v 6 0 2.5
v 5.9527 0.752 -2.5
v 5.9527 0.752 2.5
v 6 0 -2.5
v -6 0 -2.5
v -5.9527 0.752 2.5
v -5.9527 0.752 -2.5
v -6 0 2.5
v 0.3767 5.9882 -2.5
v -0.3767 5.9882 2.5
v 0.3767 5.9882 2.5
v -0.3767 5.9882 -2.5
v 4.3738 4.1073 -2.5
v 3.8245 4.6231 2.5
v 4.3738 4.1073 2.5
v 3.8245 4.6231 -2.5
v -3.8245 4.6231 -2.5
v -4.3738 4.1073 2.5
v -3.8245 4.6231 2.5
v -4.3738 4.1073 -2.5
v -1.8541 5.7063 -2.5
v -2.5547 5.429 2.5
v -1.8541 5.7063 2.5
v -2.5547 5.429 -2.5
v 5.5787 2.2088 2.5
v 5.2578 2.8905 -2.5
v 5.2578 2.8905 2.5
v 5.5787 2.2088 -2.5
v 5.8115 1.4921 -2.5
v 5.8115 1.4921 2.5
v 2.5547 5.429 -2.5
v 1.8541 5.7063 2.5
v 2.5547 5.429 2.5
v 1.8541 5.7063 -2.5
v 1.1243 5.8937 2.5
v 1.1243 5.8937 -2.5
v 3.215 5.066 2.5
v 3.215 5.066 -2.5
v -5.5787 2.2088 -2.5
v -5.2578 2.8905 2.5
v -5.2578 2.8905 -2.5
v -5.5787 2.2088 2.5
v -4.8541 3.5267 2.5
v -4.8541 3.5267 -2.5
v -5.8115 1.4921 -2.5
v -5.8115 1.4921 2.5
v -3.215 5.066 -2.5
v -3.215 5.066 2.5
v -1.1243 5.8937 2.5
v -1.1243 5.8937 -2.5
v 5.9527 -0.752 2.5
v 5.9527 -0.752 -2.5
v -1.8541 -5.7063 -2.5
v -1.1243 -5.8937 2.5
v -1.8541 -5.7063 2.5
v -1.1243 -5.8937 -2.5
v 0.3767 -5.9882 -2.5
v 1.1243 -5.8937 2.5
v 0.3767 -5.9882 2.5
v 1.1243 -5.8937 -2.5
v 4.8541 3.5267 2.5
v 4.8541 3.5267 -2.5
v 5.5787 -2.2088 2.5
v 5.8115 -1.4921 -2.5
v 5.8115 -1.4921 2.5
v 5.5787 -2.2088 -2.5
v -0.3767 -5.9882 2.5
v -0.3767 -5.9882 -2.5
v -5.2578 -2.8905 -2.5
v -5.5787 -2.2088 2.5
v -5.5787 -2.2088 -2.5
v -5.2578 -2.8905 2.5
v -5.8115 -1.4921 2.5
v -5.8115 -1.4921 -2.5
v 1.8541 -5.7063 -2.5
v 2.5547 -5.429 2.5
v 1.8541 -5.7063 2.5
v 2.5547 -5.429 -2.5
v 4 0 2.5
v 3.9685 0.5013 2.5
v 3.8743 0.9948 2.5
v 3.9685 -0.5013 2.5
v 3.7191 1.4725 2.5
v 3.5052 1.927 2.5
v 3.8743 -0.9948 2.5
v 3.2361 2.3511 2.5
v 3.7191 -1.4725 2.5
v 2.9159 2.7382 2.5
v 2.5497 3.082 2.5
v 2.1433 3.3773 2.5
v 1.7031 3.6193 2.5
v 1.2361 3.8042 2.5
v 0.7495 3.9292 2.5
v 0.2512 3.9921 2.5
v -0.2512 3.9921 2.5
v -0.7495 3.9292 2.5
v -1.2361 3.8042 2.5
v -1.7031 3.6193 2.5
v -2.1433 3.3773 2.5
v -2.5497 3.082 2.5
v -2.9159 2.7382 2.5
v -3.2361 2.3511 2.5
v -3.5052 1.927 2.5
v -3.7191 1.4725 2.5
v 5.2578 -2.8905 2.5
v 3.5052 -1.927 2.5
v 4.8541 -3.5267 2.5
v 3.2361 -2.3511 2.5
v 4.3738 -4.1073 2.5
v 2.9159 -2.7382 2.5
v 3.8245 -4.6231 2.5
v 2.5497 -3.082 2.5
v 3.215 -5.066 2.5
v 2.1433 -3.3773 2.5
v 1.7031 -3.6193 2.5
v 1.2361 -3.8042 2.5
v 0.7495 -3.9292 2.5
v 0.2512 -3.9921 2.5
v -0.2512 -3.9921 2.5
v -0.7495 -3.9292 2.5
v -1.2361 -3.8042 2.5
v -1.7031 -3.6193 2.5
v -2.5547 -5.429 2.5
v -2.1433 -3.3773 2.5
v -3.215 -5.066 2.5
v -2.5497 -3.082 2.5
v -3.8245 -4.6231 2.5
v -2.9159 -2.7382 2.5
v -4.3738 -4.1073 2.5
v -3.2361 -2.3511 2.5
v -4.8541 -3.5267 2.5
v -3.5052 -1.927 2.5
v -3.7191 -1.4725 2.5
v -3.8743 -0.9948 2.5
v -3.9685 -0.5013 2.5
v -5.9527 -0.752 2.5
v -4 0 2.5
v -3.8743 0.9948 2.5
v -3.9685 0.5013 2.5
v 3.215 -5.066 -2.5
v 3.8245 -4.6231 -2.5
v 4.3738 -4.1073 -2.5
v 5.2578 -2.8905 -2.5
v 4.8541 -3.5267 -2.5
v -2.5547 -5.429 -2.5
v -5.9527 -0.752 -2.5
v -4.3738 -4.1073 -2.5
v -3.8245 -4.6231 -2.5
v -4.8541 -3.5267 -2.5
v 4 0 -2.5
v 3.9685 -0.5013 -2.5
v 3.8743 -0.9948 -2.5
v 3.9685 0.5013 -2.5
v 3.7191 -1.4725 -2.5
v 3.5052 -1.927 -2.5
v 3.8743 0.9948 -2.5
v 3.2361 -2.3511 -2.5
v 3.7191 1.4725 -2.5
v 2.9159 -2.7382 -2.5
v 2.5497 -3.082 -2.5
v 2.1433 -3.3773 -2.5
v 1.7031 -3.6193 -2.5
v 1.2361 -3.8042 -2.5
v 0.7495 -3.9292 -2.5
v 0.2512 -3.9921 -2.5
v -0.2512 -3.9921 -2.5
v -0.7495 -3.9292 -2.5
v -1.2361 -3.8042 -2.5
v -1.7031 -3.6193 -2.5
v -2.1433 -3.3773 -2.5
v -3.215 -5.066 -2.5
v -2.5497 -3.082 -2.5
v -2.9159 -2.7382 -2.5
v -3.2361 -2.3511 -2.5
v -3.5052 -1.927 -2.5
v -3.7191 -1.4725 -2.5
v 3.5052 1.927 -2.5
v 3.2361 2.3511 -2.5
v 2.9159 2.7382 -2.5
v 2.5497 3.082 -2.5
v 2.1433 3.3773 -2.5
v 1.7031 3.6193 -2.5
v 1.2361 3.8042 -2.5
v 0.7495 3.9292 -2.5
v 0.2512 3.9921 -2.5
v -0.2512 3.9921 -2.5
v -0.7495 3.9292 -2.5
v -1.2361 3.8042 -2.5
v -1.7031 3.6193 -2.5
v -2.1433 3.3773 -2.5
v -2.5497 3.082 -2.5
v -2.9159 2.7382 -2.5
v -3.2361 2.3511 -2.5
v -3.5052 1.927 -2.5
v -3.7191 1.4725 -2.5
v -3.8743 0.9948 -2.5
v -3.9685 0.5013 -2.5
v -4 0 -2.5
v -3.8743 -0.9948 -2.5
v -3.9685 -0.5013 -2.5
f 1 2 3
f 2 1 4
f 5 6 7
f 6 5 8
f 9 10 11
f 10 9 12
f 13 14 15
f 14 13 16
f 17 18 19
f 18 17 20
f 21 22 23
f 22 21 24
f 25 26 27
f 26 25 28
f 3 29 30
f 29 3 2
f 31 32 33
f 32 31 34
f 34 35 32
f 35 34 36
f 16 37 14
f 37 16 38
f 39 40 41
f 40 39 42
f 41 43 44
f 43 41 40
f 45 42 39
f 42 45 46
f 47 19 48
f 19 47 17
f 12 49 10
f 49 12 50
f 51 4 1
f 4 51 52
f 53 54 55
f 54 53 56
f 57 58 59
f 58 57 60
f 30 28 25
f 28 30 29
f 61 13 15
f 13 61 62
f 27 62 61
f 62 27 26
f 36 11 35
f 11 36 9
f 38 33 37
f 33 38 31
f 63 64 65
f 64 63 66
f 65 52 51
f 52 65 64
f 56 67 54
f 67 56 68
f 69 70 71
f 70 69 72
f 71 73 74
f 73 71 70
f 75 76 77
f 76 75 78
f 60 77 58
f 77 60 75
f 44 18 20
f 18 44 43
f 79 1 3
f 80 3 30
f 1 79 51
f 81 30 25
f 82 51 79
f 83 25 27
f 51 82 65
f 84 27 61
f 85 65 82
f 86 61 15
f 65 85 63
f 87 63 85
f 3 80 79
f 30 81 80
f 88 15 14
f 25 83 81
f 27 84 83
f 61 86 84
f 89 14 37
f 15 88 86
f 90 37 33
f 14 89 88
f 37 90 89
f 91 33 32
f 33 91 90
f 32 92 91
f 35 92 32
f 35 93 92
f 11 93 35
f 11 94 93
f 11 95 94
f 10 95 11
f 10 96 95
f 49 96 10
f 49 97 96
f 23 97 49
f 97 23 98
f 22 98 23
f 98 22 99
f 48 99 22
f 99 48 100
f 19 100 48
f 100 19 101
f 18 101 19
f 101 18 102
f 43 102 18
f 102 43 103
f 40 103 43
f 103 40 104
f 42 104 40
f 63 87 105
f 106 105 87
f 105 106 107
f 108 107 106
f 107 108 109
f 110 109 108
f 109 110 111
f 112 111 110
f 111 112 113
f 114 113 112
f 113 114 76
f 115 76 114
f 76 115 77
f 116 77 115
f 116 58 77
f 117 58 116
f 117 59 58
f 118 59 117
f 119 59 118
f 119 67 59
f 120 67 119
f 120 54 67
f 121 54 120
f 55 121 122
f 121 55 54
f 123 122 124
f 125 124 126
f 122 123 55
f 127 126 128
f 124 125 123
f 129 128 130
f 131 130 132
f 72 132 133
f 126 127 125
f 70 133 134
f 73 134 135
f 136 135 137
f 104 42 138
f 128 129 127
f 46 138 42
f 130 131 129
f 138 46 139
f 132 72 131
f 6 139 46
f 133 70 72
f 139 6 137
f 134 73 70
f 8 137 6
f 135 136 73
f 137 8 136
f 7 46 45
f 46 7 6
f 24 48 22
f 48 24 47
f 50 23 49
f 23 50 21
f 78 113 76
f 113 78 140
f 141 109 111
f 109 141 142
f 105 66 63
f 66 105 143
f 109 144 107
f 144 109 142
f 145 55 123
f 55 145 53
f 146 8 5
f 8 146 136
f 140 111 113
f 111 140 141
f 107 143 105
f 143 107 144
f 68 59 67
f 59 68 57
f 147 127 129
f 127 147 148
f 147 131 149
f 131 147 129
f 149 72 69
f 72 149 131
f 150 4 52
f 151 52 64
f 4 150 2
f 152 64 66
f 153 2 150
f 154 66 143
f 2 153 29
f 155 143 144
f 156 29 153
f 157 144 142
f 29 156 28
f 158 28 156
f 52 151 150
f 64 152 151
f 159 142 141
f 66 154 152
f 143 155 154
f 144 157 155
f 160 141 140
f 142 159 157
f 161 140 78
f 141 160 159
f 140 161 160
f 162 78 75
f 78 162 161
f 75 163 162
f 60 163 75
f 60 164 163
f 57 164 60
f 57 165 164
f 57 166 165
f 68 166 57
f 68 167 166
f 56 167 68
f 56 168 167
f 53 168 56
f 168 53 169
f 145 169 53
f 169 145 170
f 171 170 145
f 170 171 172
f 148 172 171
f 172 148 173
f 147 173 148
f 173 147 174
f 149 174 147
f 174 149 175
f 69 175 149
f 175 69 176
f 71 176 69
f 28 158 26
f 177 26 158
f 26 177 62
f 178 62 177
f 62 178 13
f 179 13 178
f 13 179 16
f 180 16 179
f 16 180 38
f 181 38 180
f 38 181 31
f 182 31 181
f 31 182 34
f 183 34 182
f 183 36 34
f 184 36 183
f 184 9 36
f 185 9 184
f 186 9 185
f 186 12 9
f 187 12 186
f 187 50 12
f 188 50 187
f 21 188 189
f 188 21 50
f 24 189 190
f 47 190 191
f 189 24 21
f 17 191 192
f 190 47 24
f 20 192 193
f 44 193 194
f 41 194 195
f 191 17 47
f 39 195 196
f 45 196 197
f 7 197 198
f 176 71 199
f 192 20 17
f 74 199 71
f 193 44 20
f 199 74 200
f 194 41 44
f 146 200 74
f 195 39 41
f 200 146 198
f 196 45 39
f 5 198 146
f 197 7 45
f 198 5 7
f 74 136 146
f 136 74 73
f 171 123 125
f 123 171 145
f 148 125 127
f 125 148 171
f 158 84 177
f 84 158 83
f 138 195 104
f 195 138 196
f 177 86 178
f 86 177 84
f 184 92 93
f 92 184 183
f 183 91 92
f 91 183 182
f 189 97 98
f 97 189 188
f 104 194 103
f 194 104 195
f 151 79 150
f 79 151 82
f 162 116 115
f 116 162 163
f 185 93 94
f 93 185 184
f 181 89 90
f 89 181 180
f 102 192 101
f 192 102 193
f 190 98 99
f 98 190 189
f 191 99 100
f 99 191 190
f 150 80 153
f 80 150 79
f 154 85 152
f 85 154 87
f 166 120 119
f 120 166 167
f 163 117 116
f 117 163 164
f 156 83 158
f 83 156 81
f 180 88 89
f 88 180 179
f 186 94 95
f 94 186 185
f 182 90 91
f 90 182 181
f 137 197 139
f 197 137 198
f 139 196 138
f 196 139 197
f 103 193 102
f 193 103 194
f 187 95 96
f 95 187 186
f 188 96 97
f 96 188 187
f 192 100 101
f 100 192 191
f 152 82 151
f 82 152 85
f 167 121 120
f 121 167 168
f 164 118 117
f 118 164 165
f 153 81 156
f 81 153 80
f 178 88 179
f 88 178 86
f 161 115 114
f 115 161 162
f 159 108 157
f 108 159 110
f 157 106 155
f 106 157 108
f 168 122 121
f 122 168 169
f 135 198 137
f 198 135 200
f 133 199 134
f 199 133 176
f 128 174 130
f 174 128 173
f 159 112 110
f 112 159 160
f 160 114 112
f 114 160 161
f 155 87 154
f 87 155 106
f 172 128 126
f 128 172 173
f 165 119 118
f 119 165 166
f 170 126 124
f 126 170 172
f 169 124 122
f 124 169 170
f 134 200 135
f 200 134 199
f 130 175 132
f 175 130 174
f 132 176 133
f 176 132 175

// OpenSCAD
$fn = 50;


difference() {
	union() {
		translate(v = [0, 0, -2.5000000000]) {
			cylinder(h = 5, r = 6.0000000000);
		}
	}
	union() {
		translate(v = [0, 0, -100.0000000000]) {
			cylinder(h = 200, r = 4.0000000000);
		}
	}
}
